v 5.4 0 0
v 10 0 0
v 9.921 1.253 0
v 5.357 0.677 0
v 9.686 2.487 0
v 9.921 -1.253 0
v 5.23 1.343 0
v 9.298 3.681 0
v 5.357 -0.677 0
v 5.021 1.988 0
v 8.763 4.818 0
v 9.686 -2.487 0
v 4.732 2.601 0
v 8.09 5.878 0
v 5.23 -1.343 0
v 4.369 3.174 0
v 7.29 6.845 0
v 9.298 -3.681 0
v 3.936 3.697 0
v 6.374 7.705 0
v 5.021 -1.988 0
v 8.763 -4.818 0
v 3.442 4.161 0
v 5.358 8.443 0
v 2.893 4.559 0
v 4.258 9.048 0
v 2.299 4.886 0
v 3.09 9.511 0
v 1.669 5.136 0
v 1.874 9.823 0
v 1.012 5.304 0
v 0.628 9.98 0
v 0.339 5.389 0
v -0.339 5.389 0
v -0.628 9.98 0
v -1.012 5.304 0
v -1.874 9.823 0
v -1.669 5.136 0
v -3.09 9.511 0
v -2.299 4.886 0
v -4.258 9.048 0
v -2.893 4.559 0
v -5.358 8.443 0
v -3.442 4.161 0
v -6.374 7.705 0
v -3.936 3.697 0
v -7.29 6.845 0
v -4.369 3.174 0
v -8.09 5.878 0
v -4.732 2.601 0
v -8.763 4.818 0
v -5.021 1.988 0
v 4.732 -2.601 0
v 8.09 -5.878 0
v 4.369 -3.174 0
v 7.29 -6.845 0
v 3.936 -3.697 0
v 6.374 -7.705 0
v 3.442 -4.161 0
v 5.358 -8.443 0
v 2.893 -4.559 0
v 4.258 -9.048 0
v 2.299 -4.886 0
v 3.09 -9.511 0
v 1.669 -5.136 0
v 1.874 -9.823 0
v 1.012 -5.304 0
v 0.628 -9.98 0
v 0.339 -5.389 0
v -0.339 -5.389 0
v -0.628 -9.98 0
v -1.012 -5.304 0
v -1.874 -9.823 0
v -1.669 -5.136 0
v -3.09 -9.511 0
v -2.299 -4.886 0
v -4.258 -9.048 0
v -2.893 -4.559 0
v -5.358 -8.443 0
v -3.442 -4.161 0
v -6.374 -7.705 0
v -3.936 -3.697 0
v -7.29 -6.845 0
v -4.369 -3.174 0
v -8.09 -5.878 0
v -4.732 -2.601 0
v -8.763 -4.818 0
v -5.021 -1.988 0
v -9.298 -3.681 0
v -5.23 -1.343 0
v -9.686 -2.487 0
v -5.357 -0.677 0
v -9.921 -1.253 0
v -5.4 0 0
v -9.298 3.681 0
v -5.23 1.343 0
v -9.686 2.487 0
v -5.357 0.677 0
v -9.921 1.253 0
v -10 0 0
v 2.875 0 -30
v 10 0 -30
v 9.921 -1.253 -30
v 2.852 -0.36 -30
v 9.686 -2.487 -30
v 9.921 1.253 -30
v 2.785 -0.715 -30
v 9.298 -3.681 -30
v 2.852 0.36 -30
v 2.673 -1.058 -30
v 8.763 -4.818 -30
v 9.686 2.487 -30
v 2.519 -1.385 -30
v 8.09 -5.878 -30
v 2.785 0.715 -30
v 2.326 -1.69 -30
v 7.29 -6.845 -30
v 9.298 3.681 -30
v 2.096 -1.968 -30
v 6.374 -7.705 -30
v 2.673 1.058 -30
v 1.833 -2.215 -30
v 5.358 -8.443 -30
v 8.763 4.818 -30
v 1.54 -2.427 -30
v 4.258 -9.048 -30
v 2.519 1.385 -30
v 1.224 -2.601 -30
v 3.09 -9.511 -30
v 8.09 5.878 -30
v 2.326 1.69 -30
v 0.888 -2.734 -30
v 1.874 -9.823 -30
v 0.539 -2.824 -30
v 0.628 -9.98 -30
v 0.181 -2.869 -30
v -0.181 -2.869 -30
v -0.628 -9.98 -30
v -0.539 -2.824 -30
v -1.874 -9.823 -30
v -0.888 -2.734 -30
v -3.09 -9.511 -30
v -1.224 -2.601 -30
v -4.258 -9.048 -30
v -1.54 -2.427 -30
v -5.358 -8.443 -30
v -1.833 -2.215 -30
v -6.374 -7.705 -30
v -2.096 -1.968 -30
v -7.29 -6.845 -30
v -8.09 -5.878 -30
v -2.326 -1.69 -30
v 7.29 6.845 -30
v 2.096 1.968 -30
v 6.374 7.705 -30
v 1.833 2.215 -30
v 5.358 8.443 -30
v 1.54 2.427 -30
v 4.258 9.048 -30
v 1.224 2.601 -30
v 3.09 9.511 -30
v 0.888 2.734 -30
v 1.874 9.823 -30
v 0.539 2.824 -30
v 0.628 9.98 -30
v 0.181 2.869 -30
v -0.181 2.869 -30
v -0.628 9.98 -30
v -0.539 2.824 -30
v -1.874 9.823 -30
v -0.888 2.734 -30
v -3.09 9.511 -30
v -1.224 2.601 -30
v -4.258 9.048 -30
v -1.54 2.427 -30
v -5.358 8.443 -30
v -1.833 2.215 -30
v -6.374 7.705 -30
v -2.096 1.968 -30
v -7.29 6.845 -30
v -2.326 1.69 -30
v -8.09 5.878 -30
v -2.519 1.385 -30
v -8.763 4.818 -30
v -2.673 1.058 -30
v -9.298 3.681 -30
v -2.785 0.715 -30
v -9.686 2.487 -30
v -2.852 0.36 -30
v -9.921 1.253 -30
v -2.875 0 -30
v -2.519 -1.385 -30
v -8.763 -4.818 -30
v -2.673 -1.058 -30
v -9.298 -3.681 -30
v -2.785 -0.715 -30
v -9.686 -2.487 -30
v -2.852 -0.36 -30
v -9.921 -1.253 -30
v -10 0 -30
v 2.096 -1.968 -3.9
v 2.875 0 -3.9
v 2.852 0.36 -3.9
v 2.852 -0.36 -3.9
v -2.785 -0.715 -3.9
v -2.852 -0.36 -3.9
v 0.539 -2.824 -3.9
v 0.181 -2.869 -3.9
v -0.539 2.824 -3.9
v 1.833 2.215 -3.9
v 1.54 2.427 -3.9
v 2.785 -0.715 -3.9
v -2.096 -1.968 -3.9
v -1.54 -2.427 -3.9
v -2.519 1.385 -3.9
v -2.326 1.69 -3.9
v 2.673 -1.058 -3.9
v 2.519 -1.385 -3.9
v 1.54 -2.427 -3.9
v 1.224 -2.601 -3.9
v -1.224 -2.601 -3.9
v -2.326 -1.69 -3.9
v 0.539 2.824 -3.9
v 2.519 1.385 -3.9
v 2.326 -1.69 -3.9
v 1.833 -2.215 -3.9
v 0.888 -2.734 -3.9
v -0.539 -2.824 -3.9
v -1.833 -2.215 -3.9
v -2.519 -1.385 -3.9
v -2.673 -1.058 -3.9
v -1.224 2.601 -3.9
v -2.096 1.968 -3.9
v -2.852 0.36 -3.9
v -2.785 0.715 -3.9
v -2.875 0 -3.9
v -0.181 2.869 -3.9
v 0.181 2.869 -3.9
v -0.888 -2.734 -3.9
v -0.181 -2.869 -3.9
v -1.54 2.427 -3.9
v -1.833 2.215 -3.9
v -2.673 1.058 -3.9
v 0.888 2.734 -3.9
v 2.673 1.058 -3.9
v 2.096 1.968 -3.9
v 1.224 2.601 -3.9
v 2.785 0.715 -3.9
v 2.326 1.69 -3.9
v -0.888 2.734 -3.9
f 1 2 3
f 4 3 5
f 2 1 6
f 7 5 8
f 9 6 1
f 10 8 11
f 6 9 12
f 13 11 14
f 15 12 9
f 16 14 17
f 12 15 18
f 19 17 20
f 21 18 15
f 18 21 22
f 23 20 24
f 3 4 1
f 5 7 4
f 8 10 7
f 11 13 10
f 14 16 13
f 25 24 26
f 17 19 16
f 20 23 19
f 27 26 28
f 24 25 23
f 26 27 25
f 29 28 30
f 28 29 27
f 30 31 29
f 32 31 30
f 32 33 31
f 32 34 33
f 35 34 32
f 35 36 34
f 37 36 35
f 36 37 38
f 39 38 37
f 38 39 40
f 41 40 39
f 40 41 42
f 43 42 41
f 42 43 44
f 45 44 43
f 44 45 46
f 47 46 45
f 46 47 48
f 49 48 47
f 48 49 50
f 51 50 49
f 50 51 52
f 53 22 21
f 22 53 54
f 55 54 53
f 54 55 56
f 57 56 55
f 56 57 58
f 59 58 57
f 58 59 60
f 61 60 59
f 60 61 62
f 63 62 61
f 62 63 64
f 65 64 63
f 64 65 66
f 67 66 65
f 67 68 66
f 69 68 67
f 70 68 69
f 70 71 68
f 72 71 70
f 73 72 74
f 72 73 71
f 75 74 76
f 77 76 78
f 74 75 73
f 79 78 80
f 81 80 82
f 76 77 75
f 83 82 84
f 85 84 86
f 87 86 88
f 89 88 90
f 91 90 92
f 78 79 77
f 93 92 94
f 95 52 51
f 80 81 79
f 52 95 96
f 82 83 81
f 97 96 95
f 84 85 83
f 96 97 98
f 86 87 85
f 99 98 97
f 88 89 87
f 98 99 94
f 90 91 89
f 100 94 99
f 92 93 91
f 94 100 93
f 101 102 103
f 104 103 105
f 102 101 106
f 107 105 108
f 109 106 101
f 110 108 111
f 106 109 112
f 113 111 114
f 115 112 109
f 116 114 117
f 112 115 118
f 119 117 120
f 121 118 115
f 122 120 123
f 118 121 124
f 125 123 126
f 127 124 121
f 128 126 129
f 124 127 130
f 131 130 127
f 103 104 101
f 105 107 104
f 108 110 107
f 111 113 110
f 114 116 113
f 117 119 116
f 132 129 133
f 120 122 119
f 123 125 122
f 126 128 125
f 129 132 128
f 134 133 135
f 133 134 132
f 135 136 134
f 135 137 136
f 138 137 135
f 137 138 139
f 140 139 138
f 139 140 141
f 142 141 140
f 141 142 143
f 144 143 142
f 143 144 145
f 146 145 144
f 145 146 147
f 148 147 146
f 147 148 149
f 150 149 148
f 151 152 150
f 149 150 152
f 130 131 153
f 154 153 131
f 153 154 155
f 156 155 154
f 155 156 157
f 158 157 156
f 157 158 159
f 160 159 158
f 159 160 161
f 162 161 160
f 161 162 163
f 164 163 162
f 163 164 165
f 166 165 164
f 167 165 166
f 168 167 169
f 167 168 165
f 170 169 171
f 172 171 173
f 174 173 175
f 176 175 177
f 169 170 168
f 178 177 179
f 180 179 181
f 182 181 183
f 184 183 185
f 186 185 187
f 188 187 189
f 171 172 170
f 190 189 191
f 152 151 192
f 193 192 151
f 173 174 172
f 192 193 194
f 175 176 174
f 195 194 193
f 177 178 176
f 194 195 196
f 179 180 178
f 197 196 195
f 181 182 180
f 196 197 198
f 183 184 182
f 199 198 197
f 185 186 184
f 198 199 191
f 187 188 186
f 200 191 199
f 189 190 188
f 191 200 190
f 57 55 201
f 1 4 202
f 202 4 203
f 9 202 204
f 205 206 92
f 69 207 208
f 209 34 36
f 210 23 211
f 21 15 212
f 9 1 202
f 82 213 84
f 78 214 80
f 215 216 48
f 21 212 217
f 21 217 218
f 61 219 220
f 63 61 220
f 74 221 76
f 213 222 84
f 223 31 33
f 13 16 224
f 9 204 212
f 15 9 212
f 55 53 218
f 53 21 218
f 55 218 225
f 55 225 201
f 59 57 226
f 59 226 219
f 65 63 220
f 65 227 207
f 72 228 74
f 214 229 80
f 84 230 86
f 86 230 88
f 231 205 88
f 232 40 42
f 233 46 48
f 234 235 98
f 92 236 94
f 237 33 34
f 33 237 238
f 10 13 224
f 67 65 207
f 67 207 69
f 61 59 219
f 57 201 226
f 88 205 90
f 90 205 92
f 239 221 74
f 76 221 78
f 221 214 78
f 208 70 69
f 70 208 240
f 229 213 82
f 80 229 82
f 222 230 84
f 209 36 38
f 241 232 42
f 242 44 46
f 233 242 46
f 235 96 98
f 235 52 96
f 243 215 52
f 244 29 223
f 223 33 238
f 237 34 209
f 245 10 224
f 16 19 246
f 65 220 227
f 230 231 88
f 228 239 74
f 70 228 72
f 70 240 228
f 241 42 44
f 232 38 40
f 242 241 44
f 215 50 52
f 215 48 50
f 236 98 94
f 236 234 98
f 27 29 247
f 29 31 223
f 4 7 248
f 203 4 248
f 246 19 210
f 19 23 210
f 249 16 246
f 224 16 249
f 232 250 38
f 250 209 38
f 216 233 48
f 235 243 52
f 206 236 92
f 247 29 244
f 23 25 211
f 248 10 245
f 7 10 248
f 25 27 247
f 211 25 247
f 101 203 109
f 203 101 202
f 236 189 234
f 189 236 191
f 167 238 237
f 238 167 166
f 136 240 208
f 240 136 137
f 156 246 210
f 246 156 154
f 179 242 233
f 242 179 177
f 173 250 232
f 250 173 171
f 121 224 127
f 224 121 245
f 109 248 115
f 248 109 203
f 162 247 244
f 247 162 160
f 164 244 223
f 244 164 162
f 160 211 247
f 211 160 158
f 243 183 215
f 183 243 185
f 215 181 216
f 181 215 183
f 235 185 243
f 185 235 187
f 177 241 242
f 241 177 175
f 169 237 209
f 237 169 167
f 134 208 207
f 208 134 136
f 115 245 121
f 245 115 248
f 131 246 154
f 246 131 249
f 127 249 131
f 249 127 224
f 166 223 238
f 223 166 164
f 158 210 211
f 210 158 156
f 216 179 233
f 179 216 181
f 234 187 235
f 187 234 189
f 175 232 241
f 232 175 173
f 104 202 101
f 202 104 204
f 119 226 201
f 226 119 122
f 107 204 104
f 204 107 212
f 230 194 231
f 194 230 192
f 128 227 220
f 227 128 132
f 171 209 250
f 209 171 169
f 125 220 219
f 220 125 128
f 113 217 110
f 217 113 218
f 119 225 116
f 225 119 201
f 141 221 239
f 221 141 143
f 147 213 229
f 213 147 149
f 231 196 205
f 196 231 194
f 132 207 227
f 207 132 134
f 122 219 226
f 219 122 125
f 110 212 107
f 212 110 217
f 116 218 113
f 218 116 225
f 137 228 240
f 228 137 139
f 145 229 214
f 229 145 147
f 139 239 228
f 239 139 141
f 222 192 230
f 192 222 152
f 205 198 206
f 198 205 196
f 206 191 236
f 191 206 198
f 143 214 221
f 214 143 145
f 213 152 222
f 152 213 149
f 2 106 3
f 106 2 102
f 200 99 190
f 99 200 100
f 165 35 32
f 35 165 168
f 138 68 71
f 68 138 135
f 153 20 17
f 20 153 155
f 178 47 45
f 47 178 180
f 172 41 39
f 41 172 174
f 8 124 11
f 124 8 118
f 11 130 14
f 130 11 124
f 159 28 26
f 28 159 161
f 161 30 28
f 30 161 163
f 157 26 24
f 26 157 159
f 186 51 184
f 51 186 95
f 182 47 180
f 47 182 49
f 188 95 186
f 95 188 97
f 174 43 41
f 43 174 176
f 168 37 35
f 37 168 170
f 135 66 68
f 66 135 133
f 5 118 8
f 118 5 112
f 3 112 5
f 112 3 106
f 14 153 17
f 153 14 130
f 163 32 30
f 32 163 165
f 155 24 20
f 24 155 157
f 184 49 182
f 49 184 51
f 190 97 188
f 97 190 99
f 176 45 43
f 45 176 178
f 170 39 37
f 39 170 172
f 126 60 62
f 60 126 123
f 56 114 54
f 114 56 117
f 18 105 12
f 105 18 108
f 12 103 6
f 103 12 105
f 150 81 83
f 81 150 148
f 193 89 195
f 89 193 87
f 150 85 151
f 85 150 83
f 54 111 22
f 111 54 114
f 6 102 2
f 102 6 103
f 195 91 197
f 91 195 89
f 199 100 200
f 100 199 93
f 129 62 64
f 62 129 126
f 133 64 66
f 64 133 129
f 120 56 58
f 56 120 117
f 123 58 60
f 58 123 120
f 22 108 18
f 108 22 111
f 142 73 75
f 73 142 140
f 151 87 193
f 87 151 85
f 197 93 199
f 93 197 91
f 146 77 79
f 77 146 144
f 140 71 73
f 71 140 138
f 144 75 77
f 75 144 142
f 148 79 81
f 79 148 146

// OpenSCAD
$fn = 50;


difference() {
	union() {
		translate(v = [0, 0, -30.0000000000]) {
			cylinder(h = 30, r = 10.0000000000);
		}
		cylinder(h = 0, r = 13.0000000000);
	}
	union() {
		translate(v = [0, 0, 0]) {
			rotate(a = [0, 0, 0]) {
				difference() {
					union() {
						#translate(v = [0, 0, -30.0000000000]) {
							cylinder(h = 30, r = 2.6000000000);
						}
						#translate(v = [0, 0, -3.9000000000]) {
							cylinder(h = 3.9000000000, r1 = 2.8750000000, r2 = 5.4000000000);
						}
						#translate(v = [0, 0, -30.0000000000]) {
							cylinder(h = 30, r = 2.8750000000);
						}
						#translate(v = [0, 0, -30.0000000000]) {
							cylinder(h = 30, r = 2.6000000000);
						}
					}
					union();
				}
			}
		}
	}
}
